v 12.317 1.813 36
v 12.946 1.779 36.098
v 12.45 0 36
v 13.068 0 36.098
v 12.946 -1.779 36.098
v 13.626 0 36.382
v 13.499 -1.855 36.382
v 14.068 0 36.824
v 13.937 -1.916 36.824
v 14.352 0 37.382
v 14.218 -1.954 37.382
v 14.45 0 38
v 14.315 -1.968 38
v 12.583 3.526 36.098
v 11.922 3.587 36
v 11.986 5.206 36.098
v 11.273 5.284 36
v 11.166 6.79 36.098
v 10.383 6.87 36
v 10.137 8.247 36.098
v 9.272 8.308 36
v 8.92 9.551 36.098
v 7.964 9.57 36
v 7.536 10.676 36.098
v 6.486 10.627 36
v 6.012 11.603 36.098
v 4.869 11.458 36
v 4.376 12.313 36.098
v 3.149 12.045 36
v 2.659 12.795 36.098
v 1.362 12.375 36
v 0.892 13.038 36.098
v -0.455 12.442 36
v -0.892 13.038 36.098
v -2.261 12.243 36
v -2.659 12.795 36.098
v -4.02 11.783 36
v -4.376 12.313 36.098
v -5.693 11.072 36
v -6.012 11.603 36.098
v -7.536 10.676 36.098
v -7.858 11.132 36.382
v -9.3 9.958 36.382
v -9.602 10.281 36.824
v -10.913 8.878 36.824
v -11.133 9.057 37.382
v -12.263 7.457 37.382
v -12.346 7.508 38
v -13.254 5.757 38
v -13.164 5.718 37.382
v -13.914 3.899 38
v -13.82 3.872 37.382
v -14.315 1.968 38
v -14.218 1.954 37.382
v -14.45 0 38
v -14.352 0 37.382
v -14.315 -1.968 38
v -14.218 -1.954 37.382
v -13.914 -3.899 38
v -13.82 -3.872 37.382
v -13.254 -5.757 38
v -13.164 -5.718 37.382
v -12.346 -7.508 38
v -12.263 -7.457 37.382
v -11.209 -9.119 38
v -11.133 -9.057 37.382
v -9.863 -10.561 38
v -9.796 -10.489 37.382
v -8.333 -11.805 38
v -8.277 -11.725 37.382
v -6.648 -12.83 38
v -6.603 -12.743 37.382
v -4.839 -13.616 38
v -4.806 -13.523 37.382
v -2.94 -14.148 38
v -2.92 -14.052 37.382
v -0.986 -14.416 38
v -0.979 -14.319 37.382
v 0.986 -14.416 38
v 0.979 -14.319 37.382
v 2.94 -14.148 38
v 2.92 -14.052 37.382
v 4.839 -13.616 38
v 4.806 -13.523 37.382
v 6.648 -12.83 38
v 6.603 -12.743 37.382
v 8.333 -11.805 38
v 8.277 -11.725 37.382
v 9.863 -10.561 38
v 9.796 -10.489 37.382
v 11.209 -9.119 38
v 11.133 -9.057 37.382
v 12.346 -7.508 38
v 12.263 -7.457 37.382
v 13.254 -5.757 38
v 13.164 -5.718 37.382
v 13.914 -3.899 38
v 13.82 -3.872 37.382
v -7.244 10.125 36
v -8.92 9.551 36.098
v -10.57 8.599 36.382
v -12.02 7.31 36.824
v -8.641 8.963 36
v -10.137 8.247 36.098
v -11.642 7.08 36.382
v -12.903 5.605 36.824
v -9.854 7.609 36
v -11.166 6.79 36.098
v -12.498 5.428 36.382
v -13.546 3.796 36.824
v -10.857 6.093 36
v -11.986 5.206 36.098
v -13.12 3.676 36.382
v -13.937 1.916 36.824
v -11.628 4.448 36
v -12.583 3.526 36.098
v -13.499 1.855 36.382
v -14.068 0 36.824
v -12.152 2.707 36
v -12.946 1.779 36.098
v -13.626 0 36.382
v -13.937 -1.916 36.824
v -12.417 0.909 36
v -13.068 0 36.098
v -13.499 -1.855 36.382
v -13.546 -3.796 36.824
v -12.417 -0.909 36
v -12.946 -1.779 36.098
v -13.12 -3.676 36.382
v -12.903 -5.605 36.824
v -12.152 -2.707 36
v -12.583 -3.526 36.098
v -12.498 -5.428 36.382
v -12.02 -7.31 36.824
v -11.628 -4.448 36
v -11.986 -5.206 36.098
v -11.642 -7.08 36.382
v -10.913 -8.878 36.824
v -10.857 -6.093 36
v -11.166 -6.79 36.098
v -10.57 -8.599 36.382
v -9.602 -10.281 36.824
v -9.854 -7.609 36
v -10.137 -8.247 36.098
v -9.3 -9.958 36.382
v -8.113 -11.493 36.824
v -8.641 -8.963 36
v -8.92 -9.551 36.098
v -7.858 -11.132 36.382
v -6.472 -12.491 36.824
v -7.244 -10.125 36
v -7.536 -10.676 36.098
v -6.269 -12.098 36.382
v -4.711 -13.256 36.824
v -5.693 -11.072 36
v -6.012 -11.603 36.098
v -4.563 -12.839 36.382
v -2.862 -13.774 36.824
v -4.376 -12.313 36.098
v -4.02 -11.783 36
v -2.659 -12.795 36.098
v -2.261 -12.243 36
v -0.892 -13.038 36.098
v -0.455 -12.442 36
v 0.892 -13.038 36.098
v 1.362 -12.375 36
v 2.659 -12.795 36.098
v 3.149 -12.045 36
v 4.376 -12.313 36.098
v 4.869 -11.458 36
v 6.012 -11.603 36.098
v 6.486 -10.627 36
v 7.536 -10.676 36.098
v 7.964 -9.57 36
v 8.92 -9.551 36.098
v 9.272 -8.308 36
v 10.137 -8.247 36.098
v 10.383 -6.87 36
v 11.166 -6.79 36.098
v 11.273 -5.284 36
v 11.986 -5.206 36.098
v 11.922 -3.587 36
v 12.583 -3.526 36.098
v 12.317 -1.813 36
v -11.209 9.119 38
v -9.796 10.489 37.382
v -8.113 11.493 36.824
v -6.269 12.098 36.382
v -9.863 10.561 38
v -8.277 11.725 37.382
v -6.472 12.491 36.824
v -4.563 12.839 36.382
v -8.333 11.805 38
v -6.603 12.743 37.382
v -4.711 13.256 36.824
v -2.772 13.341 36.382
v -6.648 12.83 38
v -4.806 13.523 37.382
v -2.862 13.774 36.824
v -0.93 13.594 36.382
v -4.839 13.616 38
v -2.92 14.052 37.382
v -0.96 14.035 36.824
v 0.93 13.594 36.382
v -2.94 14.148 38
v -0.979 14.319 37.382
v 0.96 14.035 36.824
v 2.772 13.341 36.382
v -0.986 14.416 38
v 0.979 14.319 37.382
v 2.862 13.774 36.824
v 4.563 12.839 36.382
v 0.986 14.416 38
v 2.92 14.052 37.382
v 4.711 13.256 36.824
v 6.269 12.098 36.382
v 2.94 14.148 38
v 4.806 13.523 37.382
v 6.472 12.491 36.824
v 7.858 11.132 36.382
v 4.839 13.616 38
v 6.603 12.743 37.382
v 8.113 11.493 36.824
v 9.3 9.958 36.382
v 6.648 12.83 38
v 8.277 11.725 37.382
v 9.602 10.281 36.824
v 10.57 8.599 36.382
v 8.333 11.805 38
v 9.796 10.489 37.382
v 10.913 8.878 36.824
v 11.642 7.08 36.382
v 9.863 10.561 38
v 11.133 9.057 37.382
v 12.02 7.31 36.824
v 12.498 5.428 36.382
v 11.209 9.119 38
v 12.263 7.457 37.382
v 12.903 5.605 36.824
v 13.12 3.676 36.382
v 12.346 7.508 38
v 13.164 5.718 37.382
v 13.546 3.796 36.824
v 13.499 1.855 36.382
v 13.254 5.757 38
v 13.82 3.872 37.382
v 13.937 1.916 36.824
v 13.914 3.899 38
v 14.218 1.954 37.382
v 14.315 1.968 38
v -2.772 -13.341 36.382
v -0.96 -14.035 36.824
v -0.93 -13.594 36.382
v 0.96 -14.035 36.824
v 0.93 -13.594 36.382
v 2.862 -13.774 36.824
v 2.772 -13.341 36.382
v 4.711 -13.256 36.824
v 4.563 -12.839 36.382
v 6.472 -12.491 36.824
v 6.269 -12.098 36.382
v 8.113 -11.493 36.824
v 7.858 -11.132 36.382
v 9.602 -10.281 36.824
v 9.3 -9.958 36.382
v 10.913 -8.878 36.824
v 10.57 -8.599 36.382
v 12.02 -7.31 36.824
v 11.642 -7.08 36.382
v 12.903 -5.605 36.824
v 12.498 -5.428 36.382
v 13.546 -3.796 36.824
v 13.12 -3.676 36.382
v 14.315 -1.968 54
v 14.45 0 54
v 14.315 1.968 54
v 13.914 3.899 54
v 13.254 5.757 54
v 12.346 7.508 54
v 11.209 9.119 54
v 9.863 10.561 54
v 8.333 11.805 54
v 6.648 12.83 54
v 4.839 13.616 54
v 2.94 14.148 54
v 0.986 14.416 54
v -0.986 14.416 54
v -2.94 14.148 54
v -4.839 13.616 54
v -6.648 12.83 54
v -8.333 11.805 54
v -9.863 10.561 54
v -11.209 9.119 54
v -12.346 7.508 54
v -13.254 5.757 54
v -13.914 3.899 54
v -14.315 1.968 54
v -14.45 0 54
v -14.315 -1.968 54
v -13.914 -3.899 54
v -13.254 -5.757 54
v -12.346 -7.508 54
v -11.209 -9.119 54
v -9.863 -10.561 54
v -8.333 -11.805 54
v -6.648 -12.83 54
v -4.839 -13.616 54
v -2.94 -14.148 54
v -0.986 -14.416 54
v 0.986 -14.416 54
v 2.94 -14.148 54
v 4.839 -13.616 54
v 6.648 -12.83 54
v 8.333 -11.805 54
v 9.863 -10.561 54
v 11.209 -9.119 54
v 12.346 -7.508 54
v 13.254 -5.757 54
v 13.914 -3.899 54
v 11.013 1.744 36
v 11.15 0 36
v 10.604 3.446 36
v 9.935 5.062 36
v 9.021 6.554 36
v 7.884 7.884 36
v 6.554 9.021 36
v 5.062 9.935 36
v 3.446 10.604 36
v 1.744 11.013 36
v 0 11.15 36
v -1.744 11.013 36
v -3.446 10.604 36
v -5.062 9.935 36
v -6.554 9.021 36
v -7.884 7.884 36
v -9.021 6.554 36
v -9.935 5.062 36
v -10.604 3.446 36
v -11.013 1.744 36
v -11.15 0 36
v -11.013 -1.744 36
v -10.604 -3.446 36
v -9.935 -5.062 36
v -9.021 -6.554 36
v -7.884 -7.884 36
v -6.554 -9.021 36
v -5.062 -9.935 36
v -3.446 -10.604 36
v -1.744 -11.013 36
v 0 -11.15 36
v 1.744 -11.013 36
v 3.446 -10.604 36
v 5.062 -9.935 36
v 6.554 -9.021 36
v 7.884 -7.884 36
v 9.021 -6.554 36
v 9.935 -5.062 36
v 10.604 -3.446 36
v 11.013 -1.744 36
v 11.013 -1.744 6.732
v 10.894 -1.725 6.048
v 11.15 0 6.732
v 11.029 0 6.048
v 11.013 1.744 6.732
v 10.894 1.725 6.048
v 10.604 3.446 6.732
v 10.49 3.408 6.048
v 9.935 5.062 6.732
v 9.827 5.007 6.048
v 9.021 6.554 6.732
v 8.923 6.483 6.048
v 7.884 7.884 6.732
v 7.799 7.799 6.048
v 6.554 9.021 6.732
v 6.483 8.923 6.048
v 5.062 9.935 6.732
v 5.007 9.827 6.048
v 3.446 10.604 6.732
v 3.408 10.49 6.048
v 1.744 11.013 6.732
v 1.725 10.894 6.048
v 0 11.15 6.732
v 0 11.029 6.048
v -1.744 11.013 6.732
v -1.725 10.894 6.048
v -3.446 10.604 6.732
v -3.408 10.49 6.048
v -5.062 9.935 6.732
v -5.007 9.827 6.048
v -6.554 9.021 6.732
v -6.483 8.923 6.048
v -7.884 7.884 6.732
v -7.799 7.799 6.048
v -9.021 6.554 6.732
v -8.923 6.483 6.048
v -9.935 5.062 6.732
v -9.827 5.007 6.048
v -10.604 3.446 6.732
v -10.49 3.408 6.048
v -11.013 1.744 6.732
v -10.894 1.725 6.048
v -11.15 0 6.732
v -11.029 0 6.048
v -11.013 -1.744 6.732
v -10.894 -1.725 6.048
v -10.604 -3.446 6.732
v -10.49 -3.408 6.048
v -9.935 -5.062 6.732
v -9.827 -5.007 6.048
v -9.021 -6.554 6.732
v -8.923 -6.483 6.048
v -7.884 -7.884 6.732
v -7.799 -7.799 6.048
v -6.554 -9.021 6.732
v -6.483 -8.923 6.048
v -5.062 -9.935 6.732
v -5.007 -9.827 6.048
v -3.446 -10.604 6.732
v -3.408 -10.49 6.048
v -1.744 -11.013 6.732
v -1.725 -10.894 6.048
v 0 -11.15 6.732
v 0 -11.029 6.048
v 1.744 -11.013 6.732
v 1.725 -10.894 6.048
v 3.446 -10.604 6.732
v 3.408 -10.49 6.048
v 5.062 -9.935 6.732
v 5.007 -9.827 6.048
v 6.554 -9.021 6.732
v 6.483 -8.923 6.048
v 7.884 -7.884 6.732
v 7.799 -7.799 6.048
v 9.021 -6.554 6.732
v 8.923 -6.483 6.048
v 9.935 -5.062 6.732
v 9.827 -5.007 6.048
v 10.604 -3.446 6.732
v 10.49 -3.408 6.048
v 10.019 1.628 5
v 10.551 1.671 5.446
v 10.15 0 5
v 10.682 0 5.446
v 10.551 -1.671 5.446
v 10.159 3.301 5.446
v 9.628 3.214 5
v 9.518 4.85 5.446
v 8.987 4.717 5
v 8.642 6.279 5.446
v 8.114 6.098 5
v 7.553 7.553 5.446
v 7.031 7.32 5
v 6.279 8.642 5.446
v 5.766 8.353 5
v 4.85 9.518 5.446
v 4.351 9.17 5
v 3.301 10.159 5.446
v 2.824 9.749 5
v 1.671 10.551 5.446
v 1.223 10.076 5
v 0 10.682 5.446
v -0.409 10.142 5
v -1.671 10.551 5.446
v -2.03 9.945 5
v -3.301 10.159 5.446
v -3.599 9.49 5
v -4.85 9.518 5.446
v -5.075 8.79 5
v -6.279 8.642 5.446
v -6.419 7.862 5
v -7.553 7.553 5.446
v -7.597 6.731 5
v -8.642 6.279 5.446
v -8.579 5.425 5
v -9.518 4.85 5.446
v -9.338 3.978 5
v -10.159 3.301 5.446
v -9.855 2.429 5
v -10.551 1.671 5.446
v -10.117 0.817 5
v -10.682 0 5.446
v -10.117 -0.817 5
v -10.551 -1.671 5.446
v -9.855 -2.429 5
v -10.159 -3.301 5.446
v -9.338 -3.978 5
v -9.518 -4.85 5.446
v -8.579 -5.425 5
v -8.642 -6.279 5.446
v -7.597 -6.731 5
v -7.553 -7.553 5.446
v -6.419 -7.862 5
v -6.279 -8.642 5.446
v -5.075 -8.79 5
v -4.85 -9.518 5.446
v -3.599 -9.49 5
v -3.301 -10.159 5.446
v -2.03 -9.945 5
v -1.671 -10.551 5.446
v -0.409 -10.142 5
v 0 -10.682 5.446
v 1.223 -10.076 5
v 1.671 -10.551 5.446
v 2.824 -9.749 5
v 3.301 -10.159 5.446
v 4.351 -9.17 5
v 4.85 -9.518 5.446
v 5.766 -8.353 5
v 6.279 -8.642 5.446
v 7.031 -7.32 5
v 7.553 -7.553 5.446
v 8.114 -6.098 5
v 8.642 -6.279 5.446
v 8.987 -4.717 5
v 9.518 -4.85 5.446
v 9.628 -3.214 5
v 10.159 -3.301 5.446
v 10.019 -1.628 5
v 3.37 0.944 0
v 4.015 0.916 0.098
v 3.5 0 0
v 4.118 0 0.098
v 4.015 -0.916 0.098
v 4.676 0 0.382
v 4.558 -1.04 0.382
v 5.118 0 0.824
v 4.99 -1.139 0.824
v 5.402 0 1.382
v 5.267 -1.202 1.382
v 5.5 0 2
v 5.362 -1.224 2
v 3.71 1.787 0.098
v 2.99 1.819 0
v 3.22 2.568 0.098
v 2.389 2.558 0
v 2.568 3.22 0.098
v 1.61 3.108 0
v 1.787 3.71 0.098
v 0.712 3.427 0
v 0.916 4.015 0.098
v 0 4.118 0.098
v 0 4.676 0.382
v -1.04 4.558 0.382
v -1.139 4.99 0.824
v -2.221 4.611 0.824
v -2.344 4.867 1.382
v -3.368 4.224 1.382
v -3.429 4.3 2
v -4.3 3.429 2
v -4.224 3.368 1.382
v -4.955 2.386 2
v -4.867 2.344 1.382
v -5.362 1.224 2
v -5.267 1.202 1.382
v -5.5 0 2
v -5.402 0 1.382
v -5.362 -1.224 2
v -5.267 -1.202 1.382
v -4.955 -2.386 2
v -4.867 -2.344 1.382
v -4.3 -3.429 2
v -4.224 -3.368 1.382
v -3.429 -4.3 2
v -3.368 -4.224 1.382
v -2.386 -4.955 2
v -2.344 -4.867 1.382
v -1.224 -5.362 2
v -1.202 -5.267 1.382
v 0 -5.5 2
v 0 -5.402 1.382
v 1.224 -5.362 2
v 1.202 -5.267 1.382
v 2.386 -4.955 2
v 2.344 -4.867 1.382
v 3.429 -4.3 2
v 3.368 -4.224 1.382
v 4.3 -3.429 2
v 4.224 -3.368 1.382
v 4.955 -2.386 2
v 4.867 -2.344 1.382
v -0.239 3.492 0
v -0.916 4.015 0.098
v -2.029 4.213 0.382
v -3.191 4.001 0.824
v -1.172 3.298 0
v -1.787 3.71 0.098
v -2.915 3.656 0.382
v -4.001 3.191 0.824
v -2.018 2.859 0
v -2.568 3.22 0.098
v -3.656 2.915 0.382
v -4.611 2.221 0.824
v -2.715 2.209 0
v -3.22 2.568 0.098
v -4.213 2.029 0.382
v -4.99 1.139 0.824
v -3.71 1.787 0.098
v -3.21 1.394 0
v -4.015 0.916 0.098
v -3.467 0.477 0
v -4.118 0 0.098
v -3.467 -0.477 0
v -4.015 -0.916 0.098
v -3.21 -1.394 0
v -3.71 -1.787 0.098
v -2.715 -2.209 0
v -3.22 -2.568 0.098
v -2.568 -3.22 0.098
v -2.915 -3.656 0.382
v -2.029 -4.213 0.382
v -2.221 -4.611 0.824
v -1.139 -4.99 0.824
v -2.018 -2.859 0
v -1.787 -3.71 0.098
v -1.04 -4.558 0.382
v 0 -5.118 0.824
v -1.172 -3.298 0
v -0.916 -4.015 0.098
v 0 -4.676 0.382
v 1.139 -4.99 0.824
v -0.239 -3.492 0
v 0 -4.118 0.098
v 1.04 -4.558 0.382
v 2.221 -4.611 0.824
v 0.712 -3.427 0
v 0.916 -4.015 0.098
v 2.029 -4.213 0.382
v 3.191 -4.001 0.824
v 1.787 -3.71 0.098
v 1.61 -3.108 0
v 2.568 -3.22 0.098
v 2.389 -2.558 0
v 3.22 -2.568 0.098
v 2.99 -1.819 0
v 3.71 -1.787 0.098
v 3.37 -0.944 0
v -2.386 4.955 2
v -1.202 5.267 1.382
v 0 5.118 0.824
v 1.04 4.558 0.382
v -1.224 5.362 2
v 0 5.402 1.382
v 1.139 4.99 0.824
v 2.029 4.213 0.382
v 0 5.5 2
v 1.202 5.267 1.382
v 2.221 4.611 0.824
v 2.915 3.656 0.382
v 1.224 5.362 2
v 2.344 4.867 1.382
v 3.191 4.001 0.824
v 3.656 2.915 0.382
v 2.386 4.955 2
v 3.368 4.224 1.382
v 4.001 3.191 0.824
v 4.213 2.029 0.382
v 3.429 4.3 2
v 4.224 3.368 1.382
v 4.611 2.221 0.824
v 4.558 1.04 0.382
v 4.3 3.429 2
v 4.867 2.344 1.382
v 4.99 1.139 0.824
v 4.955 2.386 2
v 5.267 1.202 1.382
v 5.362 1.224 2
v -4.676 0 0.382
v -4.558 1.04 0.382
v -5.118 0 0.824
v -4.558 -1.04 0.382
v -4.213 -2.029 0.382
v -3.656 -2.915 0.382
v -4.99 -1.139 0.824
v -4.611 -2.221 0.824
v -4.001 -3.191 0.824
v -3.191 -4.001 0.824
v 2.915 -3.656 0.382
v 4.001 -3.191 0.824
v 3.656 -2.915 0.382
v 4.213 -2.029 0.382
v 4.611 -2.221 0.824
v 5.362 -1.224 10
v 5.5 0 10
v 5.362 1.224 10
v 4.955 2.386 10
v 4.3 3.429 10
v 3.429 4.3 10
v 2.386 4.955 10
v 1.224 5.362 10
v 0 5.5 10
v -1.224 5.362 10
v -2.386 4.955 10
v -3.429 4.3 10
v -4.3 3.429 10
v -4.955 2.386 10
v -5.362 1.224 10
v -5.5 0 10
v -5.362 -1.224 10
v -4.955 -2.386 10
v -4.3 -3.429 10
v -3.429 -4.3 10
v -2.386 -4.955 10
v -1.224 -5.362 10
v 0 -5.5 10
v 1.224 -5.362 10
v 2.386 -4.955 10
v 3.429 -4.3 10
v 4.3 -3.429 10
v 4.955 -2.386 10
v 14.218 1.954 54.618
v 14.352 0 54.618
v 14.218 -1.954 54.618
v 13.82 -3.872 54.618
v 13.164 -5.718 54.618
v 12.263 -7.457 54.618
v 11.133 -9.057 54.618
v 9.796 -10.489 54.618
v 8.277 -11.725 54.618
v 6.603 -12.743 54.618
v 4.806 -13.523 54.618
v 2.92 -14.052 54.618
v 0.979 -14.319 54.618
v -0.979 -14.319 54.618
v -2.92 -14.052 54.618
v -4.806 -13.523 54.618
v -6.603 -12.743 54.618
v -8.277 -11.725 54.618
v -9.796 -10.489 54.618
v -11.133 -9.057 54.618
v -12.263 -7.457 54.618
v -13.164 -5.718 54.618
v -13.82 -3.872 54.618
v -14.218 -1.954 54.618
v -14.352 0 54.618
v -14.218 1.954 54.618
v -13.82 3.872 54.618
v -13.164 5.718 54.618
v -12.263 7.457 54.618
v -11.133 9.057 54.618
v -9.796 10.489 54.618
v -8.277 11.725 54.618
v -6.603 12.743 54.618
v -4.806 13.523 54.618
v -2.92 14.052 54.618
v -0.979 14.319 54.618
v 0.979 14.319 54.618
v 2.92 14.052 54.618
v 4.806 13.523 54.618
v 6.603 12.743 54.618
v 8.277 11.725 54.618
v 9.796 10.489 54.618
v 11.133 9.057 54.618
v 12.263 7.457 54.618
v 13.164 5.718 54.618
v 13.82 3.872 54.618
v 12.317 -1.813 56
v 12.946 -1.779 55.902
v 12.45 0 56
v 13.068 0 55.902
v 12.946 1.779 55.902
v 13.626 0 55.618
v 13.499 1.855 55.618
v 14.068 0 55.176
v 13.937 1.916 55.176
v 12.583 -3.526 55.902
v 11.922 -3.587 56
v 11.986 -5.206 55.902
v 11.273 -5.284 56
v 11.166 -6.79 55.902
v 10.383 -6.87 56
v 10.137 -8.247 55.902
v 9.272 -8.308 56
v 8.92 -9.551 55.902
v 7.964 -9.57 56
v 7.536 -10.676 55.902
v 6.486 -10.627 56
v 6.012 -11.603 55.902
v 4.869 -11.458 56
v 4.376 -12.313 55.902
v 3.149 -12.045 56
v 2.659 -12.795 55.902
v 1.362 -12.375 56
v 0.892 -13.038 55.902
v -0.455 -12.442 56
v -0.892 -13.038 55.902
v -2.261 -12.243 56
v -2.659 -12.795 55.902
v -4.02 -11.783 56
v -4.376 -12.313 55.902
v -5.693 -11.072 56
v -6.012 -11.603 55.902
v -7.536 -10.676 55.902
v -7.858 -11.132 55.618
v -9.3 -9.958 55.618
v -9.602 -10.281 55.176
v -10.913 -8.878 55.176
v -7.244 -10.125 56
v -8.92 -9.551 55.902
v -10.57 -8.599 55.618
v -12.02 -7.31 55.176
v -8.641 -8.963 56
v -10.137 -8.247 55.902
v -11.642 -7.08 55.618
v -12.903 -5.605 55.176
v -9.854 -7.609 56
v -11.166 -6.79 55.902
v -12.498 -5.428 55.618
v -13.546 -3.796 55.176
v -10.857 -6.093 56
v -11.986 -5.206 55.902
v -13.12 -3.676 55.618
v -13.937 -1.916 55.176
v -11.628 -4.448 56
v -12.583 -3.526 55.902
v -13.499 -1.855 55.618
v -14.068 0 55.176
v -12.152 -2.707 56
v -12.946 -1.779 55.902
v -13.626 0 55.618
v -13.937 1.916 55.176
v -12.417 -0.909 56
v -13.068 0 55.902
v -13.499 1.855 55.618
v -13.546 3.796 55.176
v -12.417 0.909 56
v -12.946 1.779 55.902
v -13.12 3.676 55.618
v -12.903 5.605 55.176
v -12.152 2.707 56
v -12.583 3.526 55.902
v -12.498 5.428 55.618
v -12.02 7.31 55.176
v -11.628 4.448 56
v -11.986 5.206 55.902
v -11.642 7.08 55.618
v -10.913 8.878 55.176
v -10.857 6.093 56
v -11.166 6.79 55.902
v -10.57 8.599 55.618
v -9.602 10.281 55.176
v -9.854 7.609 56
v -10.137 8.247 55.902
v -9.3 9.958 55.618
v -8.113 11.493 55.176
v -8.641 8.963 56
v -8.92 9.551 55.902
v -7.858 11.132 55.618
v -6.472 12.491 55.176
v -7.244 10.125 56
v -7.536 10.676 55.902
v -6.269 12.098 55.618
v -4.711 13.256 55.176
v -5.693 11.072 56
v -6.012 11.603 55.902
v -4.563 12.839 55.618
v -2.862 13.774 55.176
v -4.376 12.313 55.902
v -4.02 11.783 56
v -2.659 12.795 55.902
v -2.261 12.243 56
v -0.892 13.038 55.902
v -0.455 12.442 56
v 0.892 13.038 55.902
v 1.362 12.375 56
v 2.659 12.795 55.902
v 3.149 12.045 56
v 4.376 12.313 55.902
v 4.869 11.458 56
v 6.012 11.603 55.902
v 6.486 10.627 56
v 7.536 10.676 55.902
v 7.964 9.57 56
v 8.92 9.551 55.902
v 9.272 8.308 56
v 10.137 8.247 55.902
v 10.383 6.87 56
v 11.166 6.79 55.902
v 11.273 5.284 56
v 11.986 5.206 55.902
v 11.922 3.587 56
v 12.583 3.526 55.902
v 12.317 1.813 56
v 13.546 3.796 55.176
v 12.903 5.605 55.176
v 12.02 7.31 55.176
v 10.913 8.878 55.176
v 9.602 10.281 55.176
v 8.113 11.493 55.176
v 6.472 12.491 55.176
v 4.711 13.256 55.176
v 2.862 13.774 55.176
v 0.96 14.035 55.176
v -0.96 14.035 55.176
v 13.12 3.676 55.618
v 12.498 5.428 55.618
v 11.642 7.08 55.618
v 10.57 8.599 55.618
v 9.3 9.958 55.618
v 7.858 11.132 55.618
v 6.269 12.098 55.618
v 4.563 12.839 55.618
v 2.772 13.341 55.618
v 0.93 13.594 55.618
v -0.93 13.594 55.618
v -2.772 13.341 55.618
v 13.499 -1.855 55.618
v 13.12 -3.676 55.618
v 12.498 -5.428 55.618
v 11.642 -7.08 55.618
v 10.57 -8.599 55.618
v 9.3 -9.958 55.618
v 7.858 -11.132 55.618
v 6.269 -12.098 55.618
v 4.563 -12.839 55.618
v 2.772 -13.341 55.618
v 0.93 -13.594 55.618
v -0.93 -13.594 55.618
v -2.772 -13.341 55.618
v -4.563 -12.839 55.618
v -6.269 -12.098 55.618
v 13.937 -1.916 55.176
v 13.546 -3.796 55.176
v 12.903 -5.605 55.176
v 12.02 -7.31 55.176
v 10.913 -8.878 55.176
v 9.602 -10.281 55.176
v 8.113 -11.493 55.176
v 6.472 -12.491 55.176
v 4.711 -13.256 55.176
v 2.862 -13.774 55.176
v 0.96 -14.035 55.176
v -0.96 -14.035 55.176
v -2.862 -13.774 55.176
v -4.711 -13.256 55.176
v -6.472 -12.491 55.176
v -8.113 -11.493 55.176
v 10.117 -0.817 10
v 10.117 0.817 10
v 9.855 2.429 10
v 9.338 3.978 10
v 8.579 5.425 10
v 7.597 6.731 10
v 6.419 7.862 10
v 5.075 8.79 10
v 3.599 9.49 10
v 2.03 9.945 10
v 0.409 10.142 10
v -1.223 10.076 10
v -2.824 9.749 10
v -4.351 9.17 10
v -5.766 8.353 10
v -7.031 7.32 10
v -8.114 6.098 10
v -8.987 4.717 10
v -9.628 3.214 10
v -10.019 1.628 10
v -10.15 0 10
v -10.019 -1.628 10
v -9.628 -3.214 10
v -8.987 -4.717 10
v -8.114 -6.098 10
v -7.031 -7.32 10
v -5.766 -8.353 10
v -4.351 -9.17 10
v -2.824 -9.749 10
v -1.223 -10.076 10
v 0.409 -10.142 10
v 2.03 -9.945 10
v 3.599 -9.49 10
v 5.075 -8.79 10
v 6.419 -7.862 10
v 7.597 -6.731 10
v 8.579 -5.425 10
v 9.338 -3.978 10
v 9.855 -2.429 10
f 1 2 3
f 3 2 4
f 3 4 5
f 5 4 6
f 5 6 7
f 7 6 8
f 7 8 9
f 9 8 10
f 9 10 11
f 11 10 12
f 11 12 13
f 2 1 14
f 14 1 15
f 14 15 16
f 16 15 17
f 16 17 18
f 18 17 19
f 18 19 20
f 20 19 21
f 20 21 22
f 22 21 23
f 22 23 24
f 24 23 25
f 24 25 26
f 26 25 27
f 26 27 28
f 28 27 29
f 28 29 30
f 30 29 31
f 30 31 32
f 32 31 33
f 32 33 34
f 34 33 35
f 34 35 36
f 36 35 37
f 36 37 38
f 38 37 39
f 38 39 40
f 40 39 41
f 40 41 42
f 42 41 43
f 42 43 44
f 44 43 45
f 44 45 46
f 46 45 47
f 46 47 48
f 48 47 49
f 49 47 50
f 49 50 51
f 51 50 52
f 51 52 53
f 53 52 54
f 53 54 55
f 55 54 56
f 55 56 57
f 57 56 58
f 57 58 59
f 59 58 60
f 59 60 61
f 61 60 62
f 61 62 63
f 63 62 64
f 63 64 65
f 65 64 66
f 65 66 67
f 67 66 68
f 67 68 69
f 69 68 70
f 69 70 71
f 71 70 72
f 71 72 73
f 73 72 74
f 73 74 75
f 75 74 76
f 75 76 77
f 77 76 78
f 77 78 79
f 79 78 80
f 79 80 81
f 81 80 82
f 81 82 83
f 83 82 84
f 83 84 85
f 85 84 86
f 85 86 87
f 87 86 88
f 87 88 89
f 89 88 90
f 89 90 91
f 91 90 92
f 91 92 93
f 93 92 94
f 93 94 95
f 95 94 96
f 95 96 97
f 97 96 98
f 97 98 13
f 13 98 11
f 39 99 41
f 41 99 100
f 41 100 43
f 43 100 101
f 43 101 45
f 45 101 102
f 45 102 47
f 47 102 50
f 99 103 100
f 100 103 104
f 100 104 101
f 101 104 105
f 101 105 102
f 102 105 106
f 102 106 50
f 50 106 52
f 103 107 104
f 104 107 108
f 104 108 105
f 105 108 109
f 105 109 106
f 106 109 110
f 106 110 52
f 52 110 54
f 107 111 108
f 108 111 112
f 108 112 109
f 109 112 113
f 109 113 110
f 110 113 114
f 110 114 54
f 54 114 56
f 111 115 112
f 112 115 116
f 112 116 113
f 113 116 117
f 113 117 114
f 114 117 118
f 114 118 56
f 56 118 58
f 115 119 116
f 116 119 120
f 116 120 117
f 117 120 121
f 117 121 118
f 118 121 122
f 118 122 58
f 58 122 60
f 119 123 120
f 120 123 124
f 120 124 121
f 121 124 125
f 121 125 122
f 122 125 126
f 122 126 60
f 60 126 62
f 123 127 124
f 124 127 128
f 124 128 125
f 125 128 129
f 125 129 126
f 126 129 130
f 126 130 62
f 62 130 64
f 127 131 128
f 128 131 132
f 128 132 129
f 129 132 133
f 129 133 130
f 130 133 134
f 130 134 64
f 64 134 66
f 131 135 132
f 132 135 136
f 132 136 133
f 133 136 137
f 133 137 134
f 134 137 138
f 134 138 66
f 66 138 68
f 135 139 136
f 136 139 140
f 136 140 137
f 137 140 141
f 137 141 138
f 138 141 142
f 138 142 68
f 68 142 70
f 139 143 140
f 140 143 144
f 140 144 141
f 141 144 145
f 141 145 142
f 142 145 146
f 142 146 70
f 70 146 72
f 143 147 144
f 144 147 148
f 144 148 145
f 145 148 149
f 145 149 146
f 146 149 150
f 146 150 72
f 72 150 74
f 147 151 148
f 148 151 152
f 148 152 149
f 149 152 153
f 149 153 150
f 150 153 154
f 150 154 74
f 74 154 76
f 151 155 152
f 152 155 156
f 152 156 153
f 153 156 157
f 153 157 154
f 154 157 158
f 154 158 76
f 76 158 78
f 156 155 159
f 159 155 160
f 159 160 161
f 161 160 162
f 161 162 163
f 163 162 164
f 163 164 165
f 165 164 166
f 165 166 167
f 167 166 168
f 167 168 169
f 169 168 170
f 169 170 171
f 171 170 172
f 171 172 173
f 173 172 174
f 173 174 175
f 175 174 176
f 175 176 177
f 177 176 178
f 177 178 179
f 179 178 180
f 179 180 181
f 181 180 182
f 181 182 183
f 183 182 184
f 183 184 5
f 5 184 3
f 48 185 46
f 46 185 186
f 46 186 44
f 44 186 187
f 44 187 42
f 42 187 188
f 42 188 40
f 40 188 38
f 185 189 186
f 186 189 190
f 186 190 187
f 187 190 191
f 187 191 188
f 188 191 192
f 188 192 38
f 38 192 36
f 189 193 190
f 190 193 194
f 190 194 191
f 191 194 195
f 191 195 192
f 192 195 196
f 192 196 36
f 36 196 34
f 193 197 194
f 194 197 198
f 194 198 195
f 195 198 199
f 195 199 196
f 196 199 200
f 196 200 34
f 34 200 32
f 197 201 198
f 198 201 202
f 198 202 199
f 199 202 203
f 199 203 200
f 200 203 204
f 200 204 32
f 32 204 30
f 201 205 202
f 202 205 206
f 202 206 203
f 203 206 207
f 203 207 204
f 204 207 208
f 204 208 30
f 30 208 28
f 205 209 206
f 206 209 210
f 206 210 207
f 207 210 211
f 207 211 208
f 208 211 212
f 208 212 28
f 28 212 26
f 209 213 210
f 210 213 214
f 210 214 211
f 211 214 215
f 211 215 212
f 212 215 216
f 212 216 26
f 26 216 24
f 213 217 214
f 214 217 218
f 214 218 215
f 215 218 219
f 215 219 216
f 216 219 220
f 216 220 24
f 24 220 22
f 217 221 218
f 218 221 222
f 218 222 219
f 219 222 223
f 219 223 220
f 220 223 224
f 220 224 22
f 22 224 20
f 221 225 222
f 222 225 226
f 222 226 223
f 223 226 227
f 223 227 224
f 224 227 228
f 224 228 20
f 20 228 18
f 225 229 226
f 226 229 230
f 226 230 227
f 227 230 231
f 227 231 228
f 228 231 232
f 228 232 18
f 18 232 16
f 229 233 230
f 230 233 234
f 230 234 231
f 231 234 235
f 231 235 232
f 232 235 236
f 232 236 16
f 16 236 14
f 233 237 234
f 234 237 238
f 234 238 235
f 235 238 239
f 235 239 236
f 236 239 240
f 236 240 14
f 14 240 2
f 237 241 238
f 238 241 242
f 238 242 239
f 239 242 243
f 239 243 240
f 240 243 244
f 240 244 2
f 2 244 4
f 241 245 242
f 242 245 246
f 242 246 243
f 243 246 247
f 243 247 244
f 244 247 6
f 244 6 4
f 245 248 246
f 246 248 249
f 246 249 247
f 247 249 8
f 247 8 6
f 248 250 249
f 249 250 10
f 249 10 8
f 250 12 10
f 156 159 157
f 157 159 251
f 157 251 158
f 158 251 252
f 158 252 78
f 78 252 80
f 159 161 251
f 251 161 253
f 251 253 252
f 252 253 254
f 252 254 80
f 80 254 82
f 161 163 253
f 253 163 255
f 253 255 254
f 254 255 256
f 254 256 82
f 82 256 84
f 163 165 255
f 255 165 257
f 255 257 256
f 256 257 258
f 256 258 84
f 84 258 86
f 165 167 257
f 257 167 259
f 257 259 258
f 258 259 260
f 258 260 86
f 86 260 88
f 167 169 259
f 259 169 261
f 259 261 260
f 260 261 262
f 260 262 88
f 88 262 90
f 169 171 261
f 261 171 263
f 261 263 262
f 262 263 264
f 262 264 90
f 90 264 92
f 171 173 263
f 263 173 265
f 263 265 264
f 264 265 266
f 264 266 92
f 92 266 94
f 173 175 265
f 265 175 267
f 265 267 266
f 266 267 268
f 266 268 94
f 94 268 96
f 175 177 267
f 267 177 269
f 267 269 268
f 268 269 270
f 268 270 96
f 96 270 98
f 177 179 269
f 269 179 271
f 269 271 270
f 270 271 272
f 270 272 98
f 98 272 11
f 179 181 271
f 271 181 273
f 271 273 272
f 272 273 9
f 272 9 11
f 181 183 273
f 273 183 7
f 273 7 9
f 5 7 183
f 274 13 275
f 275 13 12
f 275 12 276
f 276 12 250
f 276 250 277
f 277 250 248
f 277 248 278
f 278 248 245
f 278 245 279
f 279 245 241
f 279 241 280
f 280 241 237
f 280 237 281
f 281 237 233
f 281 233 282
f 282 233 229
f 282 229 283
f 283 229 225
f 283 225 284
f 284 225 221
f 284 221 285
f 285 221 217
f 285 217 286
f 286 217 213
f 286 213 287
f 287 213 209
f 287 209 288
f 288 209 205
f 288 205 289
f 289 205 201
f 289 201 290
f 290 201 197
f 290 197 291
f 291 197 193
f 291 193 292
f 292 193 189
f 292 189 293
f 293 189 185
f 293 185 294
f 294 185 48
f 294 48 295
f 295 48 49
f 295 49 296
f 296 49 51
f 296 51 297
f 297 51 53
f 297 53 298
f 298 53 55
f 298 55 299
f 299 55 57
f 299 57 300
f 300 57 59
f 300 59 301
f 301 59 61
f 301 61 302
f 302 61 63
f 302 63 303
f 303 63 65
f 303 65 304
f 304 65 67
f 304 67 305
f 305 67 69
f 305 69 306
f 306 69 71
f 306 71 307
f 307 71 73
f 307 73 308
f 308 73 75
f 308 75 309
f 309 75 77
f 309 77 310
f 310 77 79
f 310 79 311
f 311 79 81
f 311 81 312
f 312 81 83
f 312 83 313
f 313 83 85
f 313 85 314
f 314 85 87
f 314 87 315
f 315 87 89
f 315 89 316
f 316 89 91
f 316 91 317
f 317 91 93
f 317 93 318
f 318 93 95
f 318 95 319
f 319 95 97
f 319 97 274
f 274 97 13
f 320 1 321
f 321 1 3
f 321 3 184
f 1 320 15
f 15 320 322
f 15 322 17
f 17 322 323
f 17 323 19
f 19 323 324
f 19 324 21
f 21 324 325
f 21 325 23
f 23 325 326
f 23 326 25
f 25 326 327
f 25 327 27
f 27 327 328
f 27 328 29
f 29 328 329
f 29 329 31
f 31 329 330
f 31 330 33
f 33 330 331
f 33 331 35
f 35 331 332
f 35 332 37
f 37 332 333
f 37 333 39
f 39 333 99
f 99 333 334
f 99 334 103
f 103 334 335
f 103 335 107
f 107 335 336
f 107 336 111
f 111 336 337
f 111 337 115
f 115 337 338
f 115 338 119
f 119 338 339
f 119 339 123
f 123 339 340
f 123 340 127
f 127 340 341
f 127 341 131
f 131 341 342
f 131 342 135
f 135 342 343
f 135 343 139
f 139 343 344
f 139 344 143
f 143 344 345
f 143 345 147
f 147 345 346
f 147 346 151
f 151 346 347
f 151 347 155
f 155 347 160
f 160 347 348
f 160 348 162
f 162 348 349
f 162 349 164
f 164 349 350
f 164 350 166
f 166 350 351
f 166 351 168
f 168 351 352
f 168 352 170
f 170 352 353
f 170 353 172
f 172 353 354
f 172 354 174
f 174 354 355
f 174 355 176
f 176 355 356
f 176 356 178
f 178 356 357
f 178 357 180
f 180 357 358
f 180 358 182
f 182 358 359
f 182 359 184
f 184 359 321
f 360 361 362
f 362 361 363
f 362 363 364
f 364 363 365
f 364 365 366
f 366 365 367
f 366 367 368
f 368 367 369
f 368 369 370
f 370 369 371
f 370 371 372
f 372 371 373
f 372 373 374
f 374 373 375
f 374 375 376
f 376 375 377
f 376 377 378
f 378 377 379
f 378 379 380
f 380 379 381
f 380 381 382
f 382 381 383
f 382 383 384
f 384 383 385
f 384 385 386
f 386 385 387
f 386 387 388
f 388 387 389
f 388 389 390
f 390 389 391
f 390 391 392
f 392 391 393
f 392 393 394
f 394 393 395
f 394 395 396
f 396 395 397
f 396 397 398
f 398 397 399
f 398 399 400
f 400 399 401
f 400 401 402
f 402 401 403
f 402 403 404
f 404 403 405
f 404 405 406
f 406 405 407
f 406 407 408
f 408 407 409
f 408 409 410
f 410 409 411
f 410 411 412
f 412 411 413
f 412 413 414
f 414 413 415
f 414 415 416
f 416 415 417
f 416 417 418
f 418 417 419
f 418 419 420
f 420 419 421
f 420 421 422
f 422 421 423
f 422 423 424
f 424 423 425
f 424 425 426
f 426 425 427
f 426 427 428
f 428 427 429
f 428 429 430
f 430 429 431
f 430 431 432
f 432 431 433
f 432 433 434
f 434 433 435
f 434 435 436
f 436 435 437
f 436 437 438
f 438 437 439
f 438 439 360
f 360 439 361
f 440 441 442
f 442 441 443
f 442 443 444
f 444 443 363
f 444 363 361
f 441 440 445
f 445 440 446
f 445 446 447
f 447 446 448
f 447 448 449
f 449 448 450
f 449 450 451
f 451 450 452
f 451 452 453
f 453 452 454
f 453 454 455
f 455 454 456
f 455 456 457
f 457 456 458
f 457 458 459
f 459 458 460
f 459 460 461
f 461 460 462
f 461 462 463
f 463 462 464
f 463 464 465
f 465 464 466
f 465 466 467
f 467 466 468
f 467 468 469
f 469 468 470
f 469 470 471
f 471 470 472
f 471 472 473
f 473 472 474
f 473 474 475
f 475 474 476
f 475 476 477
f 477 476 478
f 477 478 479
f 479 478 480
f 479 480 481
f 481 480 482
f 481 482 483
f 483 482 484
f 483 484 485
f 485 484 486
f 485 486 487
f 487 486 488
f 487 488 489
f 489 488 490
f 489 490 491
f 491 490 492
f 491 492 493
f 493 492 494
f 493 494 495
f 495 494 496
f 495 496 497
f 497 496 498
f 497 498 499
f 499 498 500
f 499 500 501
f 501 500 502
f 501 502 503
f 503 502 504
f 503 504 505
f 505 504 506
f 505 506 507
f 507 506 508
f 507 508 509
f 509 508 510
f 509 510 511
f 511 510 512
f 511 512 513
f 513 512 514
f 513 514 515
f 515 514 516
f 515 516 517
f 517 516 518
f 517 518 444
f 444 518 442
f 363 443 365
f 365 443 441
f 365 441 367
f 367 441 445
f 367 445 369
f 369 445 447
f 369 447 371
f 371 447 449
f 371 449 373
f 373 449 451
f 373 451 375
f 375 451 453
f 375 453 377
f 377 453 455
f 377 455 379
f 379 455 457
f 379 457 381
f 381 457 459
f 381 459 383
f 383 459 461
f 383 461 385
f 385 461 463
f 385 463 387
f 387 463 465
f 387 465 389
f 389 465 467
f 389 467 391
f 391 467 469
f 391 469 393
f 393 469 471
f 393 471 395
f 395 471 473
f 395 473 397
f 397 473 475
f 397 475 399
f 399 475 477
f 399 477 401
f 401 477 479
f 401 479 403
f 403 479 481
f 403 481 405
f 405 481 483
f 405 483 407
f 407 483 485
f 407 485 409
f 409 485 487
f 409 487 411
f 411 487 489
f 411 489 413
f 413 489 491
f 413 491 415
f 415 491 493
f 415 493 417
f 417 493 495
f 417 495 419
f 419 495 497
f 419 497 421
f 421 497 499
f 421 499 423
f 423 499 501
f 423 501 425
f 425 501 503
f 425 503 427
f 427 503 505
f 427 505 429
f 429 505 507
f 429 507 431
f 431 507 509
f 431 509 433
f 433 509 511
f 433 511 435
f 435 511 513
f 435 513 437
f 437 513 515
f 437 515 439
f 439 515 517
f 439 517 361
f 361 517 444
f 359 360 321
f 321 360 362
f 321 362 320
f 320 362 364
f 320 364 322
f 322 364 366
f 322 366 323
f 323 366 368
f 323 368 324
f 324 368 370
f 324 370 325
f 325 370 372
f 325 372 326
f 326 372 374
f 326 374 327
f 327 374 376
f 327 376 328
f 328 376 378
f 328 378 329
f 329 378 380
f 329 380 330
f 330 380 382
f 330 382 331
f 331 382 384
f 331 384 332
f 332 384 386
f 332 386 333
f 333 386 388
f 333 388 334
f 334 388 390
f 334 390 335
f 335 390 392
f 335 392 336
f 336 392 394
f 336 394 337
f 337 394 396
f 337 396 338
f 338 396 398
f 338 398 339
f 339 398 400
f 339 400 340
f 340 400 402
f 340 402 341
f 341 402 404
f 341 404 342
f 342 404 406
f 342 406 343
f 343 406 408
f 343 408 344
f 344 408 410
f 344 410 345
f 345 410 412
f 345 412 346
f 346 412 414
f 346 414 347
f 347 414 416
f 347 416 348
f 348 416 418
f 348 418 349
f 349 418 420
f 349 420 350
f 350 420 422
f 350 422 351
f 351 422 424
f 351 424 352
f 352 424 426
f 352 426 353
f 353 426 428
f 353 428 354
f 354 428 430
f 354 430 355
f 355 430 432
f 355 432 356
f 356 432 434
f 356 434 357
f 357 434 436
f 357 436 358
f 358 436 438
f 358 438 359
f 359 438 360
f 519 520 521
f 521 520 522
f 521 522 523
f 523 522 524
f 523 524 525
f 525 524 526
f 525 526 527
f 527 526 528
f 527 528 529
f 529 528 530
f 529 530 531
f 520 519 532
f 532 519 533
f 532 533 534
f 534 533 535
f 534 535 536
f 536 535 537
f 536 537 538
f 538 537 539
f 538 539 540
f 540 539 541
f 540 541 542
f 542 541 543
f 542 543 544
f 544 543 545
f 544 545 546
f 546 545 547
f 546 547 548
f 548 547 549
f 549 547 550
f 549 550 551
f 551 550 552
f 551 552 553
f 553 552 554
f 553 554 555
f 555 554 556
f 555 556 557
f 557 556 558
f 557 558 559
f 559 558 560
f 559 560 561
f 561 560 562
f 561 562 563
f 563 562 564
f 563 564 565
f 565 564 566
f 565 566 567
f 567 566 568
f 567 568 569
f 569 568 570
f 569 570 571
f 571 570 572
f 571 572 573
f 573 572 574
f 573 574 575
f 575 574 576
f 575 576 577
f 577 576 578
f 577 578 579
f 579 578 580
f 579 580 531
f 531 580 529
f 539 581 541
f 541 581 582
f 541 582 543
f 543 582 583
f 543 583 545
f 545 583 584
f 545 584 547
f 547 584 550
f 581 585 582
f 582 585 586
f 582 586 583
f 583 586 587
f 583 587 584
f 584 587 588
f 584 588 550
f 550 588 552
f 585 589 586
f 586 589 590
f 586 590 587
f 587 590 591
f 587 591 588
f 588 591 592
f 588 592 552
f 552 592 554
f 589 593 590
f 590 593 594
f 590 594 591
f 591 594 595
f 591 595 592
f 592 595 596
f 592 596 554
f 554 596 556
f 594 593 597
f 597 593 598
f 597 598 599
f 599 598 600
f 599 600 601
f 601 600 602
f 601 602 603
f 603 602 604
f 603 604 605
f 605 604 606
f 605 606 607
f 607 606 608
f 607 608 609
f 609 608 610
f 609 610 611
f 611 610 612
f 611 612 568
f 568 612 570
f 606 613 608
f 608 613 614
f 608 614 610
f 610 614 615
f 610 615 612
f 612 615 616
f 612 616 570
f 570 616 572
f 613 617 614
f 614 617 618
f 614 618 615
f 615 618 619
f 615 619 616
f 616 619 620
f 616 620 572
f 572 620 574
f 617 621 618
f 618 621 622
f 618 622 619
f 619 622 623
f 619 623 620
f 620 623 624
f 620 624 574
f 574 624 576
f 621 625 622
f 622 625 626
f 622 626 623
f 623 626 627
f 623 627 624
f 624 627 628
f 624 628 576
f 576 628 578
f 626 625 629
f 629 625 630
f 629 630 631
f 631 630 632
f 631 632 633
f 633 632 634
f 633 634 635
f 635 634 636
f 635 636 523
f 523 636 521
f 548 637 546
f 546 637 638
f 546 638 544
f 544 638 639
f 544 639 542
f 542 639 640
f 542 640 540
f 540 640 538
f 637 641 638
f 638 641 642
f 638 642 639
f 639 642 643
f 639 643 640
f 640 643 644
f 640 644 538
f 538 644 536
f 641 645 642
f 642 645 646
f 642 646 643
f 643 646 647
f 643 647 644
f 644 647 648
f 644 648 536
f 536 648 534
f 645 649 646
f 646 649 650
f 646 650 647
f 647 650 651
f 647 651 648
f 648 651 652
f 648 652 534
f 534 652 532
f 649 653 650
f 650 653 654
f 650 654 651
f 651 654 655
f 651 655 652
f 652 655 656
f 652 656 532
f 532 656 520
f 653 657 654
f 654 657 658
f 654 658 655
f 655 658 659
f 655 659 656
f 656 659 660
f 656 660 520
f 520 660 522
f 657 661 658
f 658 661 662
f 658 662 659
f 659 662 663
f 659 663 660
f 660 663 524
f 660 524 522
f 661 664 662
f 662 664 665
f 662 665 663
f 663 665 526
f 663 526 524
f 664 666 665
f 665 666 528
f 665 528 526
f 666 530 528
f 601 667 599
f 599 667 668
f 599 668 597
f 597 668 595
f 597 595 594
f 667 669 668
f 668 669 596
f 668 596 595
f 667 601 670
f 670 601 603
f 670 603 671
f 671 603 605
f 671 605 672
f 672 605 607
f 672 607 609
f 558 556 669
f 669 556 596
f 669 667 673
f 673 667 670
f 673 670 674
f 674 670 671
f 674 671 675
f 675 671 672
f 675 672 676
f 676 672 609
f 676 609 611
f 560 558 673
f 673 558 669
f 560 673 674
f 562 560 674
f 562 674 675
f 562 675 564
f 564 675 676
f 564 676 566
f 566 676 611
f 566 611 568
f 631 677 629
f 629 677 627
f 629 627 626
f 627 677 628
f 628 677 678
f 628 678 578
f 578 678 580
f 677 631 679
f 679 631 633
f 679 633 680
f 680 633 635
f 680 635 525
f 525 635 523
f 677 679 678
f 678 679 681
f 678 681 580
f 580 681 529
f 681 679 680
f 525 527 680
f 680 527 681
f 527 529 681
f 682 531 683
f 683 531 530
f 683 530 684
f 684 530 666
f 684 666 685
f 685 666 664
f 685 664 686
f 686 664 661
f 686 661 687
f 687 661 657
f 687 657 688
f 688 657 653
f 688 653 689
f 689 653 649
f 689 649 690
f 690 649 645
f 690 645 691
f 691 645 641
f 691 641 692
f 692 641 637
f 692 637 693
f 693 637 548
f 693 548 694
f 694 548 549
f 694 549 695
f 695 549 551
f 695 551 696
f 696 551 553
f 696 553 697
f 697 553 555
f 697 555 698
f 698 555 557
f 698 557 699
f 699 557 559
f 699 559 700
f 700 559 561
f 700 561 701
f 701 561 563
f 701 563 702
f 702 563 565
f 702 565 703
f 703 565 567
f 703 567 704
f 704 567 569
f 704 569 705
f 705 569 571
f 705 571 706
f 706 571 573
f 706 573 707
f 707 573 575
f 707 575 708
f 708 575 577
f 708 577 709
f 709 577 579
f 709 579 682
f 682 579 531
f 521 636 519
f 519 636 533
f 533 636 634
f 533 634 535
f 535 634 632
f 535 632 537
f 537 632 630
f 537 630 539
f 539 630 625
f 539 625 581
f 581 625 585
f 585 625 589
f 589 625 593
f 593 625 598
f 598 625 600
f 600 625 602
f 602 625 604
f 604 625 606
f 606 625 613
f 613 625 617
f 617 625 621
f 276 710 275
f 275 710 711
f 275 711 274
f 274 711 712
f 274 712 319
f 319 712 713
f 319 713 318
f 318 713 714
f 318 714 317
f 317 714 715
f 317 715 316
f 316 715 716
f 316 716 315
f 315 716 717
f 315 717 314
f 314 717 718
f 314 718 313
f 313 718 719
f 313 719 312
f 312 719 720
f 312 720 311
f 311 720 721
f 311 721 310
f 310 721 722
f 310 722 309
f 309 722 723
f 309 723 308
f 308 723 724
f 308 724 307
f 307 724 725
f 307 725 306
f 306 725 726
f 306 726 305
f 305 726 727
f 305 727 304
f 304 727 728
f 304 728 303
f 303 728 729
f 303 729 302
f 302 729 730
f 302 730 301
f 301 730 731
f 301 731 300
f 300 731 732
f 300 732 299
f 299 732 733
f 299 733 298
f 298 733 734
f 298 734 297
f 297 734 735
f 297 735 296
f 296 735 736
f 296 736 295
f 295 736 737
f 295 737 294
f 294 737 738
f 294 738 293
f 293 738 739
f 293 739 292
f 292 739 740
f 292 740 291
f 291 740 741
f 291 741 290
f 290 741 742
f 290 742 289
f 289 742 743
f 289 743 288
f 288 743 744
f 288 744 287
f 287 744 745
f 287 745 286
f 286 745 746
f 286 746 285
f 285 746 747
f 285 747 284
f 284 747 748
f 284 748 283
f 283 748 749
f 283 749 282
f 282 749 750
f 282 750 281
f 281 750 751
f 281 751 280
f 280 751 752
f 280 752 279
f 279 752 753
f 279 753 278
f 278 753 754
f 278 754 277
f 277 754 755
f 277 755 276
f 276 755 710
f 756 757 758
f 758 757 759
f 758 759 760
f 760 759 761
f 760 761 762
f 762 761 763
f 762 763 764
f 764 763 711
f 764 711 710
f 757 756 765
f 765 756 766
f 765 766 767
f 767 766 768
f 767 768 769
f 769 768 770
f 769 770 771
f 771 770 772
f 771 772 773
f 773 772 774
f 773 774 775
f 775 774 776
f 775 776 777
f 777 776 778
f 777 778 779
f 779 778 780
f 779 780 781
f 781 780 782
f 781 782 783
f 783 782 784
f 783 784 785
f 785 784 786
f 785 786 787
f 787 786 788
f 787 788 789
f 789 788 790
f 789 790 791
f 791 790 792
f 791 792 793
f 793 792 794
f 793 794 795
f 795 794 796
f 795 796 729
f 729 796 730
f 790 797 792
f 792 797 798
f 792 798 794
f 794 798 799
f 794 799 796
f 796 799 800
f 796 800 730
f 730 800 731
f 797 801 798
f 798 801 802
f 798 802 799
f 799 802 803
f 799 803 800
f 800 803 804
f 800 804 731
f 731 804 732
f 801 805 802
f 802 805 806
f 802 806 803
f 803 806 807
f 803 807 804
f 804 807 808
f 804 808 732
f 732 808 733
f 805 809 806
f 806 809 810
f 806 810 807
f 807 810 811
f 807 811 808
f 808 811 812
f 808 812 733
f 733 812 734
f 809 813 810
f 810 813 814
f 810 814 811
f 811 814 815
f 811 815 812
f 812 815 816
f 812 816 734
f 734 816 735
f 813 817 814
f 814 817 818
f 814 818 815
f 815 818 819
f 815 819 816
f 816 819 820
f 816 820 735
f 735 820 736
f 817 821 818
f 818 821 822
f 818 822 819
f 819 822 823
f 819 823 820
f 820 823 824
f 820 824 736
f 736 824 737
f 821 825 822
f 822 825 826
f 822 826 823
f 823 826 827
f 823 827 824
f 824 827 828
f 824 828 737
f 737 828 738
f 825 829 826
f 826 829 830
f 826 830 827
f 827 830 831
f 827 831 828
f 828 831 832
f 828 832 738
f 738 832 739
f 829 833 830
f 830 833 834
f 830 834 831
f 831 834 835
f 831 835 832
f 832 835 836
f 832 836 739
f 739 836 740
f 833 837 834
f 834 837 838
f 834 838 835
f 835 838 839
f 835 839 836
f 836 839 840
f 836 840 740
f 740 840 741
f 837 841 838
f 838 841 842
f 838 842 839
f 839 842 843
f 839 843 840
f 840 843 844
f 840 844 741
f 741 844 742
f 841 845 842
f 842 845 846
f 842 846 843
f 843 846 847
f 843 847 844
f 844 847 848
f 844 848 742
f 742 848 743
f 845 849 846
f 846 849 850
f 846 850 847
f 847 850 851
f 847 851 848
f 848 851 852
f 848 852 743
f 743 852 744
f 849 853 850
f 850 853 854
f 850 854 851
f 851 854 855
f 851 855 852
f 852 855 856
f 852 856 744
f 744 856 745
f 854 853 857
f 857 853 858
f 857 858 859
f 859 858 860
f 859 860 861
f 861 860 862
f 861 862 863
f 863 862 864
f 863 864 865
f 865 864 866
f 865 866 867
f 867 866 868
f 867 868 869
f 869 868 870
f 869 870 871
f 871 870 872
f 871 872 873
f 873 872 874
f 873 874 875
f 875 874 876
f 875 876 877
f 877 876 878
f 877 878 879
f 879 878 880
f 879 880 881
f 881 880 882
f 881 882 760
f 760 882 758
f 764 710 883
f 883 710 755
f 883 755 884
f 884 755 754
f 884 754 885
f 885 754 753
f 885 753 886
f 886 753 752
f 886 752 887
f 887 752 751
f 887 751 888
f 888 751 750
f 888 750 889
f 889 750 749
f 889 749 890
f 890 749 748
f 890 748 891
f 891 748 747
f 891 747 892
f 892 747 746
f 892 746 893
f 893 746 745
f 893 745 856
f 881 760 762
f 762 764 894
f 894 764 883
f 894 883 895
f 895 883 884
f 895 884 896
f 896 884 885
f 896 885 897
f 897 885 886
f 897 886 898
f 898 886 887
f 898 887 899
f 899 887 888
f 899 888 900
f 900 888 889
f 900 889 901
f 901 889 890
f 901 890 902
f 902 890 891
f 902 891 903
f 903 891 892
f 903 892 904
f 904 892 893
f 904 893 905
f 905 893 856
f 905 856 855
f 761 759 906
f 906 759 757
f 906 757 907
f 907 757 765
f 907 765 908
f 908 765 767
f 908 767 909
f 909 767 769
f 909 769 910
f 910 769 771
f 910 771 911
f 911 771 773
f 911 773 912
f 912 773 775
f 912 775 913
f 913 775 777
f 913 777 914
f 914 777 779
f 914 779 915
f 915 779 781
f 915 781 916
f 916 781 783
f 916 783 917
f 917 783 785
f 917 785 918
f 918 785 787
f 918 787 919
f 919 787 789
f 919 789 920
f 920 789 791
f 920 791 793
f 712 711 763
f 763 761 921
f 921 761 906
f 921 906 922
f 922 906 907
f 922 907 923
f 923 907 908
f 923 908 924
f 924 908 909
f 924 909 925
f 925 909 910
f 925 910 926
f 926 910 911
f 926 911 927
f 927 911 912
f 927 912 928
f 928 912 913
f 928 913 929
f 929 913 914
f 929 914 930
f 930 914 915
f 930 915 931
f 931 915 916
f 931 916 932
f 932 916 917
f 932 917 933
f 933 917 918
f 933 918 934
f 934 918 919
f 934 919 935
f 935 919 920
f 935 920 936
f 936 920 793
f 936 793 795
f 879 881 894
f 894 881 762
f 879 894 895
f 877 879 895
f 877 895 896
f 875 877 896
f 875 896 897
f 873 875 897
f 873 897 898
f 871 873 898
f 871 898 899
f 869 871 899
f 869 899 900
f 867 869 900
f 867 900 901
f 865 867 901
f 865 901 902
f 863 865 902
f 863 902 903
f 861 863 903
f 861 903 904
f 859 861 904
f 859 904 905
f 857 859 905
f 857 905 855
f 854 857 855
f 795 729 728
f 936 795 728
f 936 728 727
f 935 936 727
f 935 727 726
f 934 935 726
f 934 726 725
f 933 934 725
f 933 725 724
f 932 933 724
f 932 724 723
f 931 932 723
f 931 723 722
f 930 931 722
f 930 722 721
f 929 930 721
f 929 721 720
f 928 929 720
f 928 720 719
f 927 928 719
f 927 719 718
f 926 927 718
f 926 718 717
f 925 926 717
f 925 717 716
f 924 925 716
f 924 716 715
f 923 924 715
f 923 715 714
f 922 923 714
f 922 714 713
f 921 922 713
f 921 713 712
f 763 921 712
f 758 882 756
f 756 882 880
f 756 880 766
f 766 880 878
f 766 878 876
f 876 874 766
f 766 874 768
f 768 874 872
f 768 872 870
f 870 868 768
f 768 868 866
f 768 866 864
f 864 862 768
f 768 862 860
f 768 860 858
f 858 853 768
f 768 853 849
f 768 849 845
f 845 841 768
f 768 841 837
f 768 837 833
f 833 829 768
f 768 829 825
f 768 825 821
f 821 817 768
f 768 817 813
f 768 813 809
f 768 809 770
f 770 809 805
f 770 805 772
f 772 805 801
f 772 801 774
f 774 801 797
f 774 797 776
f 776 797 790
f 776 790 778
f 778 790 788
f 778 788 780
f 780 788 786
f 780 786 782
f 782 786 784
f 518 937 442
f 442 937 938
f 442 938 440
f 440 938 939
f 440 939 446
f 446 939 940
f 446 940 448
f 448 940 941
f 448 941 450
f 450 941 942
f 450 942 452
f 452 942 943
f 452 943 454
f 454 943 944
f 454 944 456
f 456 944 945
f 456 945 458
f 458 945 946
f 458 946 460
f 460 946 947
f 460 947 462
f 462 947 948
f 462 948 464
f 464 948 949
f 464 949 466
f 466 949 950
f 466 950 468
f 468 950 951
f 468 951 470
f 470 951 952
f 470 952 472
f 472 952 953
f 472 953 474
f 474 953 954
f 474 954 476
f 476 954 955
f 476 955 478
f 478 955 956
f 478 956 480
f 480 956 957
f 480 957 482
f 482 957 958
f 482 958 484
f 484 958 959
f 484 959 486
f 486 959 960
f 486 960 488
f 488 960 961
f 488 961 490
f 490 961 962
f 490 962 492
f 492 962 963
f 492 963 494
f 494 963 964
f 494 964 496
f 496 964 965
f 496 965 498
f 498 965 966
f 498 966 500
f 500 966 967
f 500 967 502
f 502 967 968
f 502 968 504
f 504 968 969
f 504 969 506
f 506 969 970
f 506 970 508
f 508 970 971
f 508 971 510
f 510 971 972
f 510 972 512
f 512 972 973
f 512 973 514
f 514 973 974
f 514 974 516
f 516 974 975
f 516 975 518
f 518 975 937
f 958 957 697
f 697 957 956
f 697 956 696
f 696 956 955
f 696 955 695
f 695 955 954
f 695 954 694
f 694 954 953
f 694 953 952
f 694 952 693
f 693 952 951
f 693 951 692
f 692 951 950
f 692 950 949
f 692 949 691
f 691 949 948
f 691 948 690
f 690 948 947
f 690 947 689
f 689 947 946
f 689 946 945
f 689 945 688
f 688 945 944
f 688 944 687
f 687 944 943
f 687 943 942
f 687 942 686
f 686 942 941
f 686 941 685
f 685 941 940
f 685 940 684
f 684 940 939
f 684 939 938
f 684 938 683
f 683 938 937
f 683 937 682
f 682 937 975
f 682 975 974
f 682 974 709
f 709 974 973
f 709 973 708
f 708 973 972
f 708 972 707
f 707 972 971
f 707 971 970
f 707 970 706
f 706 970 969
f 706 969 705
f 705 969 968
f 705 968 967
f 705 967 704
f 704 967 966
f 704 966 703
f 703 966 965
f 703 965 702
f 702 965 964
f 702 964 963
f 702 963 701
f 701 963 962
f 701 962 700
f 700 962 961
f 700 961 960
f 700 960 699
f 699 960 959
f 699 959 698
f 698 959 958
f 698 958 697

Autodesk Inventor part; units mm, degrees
ref_plane "YZ Plane" through (0, 0, 0) normal (1, 0, 0) x (0, 1, 0)
ref_plane "XZ Plane" through (0, 0, 0) normal (0, 1, 0) x (-1, 0, 0)
ref_plane "XY Plane" through (0, 0, 0) normal (0, 0, 1) x (1, 0, 0)
sketch "Sketch1" plane through (0, 0, 0) normal (0, 0, 1) x (1, 0, 0)
  circle A0 centre (0, 0) radius 5.5
  dimension "d0" = 11
extrude "Extrusion1" add sketch "Sketch1" along normal blind 10
sketch "Sketch2" plane through (0, 0, 10) normal (0, 0, 1) x (1, 0, 0)
  circle A0 centre (0, 0) radius 11.15
  dimension "d3" = 22.3
extrude "Extrusion3" add sketch "Sketch2" along normal blind 26
sketch "Sketch3" plane through (0, 0, 10) normal (0, 0, -1) x (-1, 0, 0)
  circle A0 centre (0, 0) radius 10.15
  circle A1 centre (0, 0) radius 11.15
  dimension "d8" = 20.3
  dimension "d9" = 22.3
extrude "Extrusion4" add sketch "Sketch3" along normal blind 5
sketch "Sketch4" plane through (0, 0, 36) normal (0, 0, 1) x (1, 0, 0)
  circle A0 centre (0, 0) radius 14.45
  dimension "d12" = 28.9
extrude "Extrusion5" add sketch "Sketch4" along normal blind 20
fillet "Fillet1" radius 2 1 edges at (-14.45, 0, 56)
fillet "Fillet2" radius 2 1 edges at (-5.5, 0, 0)
fillet "Fillet3" radius 2 1 edges at (11.15, 0, 5)
fillet "Fillet4" radius 2 1 edges at (-14.45, 0, 36)
properties part number "Elbow_Parallel_Rod_V1"
